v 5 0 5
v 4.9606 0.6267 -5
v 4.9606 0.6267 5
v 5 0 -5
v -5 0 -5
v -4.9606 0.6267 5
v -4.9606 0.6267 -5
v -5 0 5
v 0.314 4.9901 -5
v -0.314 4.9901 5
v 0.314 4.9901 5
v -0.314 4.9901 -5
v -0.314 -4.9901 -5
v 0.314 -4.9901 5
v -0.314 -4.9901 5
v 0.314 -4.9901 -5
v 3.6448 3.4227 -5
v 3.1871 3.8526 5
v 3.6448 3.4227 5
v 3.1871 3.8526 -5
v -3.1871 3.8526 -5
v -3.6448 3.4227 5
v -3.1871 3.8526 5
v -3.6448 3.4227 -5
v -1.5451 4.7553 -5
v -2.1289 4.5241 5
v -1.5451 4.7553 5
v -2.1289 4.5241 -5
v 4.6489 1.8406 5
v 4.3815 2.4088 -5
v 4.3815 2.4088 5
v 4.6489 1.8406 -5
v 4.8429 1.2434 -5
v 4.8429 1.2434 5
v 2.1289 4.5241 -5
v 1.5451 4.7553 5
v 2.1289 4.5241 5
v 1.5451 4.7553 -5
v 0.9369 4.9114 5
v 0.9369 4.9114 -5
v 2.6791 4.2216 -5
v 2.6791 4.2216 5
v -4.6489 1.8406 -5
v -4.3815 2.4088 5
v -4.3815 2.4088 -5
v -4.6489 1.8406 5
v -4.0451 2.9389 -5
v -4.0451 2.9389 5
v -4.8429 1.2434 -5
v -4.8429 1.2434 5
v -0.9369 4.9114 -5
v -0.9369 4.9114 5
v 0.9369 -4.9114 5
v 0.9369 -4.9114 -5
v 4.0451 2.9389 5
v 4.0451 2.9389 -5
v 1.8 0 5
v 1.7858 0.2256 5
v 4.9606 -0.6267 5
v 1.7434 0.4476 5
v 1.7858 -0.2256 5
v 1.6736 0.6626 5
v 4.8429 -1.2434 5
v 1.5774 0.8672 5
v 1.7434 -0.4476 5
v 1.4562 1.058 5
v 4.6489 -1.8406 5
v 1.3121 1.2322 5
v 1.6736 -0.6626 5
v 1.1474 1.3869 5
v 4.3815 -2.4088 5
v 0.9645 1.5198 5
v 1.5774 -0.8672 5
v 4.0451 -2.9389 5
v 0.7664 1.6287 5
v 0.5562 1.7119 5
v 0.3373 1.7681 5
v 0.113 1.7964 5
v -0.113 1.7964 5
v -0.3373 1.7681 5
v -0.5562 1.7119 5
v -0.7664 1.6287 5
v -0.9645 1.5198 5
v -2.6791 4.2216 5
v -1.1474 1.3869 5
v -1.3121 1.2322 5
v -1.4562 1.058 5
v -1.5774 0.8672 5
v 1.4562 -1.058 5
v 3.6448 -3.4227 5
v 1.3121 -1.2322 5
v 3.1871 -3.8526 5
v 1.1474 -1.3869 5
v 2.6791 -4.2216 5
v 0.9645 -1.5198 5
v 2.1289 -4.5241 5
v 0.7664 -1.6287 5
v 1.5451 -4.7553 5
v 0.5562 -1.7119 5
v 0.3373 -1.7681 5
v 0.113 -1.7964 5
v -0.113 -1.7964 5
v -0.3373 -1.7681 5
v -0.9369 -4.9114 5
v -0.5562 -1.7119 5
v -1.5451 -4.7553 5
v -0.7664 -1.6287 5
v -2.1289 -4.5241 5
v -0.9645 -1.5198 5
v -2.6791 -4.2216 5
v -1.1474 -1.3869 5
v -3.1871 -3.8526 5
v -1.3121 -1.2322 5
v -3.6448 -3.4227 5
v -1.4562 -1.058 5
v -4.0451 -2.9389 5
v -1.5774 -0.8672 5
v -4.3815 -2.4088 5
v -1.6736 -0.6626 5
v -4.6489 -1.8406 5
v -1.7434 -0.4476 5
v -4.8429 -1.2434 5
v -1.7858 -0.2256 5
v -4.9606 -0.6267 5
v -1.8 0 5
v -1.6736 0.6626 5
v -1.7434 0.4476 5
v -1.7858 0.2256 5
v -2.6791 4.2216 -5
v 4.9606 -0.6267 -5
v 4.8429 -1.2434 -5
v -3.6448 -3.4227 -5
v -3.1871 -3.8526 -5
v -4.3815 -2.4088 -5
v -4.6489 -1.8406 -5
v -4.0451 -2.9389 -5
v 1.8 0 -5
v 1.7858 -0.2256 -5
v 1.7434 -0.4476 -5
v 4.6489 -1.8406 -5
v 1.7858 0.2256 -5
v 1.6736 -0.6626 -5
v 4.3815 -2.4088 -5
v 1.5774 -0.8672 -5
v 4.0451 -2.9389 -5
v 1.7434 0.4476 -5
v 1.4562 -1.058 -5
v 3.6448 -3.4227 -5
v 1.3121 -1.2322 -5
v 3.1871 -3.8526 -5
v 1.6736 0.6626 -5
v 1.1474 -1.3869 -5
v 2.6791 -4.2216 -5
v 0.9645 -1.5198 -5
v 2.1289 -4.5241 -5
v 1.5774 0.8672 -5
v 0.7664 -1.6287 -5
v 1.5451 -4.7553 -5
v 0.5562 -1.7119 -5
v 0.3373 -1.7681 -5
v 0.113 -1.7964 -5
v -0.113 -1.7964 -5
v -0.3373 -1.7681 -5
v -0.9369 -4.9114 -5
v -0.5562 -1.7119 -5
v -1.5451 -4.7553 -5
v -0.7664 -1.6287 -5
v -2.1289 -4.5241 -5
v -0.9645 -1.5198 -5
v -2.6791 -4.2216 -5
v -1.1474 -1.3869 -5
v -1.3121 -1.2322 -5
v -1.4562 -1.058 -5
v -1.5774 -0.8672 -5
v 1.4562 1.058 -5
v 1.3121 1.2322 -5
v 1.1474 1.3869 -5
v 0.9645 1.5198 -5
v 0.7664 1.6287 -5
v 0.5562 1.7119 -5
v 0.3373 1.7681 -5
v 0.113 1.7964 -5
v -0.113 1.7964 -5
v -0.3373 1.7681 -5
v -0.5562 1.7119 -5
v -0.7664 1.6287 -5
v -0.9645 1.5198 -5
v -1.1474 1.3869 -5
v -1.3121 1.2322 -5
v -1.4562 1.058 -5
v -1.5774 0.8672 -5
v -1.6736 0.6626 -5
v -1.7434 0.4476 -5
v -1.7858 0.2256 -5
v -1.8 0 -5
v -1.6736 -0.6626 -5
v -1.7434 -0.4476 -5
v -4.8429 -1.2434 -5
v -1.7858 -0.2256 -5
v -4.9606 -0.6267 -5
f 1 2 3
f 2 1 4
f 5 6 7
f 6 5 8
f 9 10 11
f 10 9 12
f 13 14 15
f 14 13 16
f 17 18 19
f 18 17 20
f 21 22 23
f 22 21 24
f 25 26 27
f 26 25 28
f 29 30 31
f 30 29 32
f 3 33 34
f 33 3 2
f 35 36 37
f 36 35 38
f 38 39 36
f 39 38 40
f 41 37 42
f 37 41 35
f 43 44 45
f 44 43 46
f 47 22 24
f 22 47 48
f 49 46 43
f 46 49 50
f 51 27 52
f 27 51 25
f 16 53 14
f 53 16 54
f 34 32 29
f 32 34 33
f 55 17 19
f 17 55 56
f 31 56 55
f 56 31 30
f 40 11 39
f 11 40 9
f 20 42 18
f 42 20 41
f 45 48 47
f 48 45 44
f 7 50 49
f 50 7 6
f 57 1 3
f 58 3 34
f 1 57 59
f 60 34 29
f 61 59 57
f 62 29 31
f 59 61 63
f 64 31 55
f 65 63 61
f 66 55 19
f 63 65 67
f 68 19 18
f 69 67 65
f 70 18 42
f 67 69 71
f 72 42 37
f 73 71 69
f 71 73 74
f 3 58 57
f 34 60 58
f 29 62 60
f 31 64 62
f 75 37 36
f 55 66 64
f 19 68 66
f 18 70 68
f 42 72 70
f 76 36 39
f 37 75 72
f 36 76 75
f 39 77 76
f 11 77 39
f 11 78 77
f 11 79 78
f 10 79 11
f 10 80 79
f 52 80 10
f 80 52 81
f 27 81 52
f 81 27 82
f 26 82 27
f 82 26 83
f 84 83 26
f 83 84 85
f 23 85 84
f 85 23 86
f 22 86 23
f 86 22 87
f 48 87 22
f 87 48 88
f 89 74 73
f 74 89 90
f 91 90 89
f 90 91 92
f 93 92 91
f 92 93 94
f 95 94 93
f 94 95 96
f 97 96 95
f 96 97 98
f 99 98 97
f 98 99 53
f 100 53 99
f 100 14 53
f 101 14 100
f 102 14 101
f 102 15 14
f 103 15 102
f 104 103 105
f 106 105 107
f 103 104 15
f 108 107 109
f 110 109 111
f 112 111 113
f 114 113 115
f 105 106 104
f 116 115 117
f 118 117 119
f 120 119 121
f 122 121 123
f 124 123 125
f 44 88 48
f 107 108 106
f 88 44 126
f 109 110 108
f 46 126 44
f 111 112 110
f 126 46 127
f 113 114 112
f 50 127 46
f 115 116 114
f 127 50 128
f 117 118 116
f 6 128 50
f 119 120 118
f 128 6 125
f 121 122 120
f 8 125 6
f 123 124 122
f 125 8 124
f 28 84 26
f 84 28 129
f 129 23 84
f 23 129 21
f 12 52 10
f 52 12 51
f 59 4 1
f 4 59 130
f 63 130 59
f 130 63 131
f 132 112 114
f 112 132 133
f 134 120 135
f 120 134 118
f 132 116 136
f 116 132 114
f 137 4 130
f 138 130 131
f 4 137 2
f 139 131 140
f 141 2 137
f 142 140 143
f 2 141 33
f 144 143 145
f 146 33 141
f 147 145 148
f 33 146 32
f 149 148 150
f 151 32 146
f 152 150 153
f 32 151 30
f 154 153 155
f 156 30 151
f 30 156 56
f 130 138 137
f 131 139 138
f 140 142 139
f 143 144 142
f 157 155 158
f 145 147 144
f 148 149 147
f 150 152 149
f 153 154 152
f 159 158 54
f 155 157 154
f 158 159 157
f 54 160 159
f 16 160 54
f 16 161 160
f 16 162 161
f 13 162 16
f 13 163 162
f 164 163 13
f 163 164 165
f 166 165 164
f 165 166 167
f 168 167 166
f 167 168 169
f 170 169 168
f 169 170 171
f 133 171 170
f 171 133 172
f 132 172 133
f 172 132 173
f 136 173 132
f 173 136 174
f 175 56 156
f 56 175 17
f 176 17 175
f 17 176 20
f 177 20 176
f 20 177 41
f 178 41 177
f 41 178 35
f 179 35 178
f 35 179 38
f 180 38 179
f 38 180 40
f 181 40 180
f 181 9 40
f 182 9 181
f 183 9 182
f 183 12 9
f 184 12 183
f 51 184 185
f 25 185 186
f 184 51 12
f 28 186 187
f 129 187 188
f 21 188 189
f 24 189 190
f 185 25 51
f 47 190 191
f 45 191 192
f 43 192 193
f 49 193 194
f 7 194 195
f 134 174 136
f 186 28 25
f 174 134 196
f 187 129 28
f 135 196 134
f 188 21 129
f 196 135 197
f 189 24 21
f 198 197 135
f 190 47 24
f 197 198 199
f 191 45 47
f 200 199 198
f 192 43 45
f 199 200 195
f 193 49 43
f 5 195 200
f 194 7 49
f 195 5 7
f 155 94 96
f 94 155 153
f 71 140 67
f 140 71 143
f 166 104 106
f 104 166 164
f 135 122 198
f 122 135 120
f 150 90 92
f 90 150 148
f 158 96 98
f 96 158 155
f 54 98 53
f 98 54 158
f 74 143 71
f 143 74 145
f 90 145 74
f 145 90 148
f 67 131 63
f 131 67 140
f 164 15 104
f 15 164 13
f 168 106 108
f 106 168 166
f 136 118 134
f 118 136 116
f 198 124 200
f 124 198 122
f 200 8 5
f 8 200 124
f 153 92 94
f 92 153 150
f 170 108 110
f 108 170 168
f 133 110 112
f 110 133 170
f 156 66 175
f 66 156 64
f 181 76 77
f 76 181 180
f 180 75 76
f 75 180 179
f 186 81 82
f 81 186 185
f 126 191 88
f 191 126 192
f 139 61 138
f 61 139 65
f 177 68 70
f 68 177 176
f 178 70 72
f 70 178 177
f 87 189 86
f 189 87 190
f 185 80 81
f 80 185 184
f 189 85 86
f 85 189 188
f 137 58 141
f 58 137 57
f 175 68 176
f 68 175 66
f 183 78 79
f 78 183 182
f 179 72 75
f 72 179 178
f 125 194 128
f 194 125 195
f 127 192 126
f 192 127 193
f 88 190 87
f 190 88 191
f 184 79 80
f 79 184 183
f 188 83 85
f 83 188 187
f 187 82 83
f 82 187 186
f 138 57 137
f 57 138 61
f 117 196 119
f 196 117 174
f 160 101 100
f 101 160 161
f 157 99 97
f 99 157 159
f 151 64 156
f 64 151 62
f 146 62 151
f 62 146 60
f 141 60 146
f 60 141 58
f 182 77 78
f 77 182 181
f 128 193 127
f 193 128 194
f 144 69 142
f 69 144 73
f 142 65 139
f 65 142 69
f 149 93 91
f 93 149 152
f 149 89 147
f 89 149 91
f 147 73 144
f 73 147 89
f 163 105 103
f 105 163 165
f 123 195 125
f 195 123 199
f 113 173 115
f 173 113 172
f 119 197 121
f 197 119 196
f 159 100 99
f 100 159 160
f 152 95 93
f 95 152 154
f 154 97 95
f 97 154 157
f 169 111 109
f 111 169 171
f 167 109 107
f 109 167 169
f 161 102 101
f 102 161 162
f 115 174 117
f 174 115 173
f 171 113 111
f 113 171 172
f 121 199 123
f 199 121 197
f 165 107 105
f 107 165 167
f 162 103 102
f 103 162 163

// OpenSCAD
$fn = 50;


difference() {
	union() {
		translate(v = [0, 0, -5.0000000000]) {
			cylinder(h = 10, r = 5.0000000000);
		}
	}
	union() {
		translate(v = [0, 0, -100.0000000000]) {
			cylinder(h = 200, r = 1.8000000000);
		}
	}
}
